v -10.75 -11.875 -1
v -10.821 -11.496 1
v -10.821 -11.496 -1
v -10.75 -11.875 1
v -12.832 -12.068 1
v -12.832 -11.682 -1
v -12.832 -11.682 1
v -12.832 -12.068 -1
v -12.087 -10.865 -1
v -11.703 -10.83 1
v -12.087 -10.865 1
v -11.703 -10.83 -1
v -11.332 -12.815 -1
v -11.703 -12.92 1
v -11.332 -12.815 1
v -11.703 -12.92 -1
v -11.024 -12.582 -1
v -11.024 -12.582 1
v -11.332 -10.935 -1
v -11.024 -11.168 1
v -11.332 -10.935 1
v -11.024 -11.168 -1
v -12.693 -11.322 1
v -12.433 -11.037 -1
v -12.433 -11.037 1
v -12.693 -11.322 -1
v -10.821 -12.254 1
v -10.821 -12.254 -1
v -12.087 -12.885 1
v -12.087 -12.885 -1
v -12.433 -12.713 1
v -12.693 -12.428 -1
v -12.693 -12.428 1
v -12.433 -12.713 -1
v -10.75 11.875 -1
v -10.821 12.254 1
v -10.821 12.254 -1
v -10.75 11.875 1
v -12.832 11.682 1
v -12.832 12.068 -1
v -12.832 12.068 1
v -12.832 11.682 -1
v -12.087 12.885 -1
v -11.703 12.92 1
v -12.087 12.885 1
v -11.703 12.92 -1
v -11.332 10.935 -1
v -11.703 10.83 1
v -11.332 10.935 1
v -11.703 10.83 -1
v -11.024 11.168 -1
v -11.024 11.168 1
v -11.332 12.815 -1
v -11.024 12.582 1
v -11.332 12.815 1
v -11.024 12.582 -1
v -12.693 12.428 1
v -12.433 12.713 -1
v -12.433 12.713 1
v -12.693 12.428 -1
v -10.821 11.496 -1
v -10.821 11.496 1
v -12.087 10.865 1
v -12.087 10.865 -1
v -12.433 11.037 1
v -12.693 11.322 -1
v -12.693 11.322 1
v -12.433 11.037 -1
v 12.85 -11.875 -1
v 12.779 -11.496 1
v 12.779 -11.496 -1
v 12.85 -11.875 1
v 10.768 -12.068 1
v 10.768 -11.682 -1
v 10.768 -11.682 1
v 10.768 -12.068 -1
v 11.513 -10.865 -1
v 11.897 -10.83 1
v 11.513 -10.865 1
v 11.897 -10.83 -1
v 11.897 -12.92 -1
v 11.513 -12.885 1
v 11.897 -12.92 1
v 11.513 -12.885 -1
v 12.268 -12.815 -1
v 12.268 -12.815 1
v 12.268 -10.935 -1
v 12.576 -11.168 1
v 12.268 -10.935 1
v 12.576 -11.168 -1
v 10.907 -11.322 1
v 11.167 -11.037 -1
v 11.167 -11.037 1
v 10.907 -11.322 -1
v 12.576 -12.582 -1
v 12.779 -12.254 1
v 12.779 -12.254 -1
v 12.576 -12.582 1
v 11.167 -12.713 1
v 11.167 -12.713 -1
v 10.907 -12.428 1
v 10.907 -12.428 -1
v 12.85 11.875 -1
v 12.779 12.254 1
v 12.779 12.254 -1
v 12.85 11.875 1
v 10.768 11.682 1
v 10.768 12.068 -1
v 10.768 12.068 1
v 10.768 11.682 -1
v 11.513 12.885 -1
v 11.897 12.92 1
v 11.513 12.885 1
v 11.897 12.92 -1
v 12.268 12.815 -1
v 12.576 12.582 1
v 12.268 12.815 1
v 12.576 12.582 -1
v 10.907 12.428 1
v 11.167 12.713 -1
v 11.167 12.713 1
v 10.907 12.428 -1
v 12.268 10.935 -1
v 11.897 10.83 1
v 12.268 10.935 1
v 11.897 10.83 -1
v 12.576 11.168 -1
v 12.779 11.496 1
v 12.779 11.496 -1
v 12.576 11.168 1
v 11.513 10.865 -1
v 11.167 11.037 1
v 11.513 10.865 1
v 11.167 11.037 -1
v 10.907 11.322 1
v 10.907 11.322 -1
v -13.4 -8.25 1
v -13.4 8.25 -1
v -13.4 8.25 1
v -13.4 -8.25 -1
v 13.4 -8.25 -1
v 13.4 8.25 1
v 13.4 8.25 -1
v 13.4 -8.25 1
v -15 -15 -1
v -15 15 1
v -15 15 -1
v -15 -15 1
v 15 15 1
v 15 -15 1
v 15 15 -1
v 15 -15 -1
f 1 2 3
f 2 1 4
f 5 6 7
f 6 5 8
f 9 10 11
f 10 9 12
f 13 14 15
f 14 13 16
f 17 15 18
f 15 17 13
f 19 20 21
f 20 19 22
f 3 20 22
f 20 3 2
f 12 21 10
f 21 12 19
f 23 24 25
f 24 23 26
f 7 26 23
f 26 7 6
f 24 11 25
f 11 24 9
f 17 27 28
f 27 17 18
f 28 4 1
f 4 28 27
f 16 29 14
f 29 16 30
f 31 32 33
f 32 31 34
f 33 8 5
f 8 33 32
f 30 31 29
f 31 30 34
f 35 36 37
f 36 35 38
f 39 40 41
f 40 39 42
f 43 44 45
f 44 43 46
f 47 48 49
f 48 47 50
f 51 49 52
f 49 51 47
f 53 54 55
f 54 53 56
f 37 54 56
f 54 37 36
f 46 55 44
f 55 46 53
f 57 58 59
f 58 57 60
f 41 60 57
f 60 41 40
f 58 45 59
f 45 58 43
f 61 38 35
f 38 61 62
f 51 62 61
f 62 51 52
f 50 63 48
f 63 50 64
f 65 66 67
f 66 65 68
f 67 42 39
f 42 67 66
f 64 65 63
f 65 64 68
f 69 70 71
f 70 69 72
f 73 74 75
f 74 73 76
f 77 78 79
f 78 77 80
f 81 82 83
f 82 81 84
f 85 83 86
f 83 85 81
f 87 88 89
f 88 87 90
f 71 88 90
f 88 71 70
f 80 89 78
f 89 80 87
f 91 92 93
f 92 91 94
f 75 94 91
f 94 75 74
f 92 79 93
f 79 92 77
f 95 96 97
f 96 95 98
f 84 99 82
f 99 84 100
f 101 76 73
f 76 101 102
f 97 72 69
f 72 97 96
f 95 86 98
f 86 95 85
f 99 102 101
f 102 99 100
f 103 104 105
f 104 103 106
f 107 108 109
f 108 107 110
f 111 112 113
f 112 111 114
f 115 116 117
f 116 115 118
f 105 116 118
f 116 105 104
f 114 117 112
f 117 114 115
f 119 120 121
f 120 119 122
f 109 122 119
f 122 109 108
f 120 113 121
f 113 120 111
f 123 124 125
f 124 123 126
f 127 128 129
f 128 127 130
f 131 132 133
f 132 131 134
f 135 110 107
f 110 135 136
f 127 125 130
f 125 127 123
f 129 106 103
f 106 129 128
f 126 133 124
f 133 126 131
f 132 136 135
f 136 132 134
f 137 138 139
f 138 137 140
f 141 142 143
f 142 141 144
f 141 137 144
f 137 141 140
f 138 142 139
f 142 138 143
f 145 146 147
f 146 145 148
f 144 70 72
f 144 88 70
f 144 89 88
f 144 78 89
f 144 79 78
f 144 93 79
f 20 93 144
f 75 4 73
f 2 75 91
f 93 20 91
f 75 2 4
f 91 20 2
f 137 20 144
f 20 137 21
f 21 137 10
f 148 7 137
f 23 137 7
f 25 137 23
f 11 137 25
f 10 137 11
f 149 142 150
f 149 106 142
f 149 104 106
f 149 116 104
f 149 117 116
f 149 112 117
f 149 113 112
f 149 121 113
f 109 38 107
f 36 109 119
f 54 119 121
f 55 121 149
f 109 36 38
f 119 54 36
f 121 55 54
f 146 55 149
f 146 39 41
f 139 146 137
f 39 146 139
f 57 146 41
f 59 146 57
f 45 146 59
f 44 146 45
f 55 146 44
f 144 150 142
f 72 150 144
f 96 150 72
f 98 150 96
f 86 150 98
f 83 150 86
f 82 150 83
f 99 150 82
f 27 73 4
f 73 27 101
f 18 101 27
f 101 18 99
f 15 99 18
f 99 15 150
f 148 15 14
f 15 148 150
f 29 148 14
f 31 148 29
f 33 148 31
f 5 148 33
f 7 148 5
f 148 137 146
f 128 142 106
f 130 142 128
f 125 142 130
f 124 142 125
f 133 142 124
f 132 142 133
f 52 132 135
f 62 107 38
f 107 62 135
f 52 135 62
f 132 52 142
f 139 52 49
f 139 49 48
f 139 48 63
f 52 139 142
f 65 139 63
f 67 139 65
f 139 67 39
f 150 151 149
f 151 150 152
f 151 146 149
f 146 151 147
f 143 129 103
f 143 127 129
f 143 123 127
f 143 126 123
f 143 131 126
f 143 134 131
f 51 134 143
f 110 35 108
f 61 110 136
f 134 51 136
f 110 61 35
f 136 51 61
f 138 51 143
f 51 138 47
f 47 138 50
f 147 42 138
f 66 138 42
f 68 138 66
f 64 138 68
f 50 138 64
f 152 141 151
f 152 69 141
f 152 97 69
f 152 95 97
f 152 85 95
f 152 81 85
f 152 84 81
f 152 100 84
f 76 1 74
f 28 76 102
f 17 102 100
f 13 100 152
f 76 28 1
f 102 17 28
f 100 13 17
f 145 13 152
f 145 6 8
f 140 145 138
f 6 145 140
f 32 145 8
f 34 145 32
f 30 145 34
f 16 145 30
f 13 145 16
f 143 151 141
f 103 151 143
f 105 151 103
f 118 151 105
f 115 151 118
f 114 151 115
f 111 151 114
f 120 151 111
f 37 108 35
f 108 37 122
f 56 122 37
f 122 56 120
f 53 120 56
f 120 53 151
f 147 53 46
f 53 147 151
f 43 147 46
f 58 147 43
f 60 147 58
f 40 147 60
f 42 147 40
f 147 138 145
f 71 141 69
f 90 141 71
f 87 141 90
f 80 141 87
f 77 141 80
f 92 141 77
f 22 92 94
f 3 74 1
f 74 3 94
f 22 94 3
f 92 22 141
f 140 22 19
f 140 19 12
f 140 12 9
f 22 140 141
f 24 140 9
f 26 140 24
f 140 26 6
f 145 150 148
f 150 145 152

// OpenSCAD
// file: enclosure.scad
// definitions

// box dimensions
w = 76.2;
l = 90;
d = 40;
thick = 3;
fillet = 3;

// points
pts_MAX = [[-30/2,-25/2,0], [-30/2,25/2,0], [30/2,-25/2,0], [30/2,25/2,0]];

// set up modules

module outer(width, length, depth, fillet) {
    linear_extrude(depth, center = true)
    offset(r = +fillet) offset(delta = -fillet) {
        square([width, length], center = true);
    }
}

module bolts_MAX(points, diameter, thickness) {
    points = [[-30/2,-25/2,0], [-30/2,25/2,0], [30/2,-25/2,0], [30/2,25/2,0]];
    for (p = points){
        rotate([90,0,0]) translate(p) cylinder(d=diameter, h=thickness, center=true);
    }
}

module bolt_mounts(w, l, d, fillet, diam) {
    x = w/2-fillet;
    y = l/2-fillet;
    points = [[x,y,0], [x,-y,0], [-x,y,0], [-x,-y,0]];
    module mounts() {
        for (p = points){
            translate(p) cylinder(r=fillet, h=d, center=true);
        }
    }
    module holes() {
        points = [[x,y,0.1], [x,-y,0.1], [-x,y,0.1], [-x,-y,0.1]];
        for (p = points){
            translate(p) cylinder(d=diam, h=d, center=true, $fn = 5);
        }
    }
    difference(){
        mounts();
        holes();
    }
}

module OLED_094() {
    // OLED screw hole distances
    dist_x = 21.6+2;
    dist_y = 22+3.5/2;
    w_OLED = 26.8;
    h_OLED = 16.5;
    pts_OLED = [[-dist_x/2,-dist_y/2,0], [-dist_x/2,dist_y/2,0], [dist_x/2,-dist_y/2,0], [dist_x/2,dist_y/2,0]];
    cube([w_OLED, h_OLED, 8], center = true);
	for (p = pts_OLED){
		translate(p) cylinder(d=2.1, h=8, center=true);
	}
}

module r_box(width, length, depth, thickness, fillet) {
	difference() {
        // main box
        // outer
        outer(width = width, length = length, depth = depth, fillet = fillet);
        // inner
        translate([0, 0, thickness])
        scale([width/(width+thickness), length/(length+thickness), 1]) // [x,y,z]
        outer(width = width, length = length, depth = depth, fillet = fillet);

        // hole for power connector
        translate([-20,-l/2,0])
        rotate([90,0,0])
        cylinder(h = thick+2, d = 15, center = true);

        // window for MAX31865 chip components
        translate([10,-l/2,0])
        cube([27, thick+2, 21], center = true);

        // holes for MAX31865 chip bolts
        translate([10,-l/2,0])
        bolts_MAX(pts_MAX, diameter = 3, thickness = thick+2);

        // window for Arduino USB B plug
        translate([-11.1,l/2,8.9])
        cube([15, thick+2, 13], center = true);

        // window for Arduino barrel power plug
        translate([19,l/2,8.9])
        cube([11, thick+2, 13], center = true);

        // OLED
        rotate([0,0,90])
        translate([0,0,-d/2])
        color("black")
        OLED_094();
    }
}

// enclosure
module enclosure() {
    $fa = 1;
    $fs = 0.4;
    union() {
        r_box(width = w, length = l, depth = d, thickness = thick, fillet = fillet);
        bolt_mounts(w, l, d, fillet = fillet, diam = 2.5);

        difference() {
            translate([10,-l/2+1.9,0])
            bolts_MAX(pts_MAX, diameter = 5, thickness = 1);

            translate([10,-l/2,0])
            bolts_MAX(pts_MAX, diameter = 3, thickness = thick+2);
        }
    }
}

enclosure();
// main file
use <enclosure.scad>

$fa = 1;
$fs = 0.4;

difference() {
    cube([30,30,2], center = true);
    OLED_094();
}
